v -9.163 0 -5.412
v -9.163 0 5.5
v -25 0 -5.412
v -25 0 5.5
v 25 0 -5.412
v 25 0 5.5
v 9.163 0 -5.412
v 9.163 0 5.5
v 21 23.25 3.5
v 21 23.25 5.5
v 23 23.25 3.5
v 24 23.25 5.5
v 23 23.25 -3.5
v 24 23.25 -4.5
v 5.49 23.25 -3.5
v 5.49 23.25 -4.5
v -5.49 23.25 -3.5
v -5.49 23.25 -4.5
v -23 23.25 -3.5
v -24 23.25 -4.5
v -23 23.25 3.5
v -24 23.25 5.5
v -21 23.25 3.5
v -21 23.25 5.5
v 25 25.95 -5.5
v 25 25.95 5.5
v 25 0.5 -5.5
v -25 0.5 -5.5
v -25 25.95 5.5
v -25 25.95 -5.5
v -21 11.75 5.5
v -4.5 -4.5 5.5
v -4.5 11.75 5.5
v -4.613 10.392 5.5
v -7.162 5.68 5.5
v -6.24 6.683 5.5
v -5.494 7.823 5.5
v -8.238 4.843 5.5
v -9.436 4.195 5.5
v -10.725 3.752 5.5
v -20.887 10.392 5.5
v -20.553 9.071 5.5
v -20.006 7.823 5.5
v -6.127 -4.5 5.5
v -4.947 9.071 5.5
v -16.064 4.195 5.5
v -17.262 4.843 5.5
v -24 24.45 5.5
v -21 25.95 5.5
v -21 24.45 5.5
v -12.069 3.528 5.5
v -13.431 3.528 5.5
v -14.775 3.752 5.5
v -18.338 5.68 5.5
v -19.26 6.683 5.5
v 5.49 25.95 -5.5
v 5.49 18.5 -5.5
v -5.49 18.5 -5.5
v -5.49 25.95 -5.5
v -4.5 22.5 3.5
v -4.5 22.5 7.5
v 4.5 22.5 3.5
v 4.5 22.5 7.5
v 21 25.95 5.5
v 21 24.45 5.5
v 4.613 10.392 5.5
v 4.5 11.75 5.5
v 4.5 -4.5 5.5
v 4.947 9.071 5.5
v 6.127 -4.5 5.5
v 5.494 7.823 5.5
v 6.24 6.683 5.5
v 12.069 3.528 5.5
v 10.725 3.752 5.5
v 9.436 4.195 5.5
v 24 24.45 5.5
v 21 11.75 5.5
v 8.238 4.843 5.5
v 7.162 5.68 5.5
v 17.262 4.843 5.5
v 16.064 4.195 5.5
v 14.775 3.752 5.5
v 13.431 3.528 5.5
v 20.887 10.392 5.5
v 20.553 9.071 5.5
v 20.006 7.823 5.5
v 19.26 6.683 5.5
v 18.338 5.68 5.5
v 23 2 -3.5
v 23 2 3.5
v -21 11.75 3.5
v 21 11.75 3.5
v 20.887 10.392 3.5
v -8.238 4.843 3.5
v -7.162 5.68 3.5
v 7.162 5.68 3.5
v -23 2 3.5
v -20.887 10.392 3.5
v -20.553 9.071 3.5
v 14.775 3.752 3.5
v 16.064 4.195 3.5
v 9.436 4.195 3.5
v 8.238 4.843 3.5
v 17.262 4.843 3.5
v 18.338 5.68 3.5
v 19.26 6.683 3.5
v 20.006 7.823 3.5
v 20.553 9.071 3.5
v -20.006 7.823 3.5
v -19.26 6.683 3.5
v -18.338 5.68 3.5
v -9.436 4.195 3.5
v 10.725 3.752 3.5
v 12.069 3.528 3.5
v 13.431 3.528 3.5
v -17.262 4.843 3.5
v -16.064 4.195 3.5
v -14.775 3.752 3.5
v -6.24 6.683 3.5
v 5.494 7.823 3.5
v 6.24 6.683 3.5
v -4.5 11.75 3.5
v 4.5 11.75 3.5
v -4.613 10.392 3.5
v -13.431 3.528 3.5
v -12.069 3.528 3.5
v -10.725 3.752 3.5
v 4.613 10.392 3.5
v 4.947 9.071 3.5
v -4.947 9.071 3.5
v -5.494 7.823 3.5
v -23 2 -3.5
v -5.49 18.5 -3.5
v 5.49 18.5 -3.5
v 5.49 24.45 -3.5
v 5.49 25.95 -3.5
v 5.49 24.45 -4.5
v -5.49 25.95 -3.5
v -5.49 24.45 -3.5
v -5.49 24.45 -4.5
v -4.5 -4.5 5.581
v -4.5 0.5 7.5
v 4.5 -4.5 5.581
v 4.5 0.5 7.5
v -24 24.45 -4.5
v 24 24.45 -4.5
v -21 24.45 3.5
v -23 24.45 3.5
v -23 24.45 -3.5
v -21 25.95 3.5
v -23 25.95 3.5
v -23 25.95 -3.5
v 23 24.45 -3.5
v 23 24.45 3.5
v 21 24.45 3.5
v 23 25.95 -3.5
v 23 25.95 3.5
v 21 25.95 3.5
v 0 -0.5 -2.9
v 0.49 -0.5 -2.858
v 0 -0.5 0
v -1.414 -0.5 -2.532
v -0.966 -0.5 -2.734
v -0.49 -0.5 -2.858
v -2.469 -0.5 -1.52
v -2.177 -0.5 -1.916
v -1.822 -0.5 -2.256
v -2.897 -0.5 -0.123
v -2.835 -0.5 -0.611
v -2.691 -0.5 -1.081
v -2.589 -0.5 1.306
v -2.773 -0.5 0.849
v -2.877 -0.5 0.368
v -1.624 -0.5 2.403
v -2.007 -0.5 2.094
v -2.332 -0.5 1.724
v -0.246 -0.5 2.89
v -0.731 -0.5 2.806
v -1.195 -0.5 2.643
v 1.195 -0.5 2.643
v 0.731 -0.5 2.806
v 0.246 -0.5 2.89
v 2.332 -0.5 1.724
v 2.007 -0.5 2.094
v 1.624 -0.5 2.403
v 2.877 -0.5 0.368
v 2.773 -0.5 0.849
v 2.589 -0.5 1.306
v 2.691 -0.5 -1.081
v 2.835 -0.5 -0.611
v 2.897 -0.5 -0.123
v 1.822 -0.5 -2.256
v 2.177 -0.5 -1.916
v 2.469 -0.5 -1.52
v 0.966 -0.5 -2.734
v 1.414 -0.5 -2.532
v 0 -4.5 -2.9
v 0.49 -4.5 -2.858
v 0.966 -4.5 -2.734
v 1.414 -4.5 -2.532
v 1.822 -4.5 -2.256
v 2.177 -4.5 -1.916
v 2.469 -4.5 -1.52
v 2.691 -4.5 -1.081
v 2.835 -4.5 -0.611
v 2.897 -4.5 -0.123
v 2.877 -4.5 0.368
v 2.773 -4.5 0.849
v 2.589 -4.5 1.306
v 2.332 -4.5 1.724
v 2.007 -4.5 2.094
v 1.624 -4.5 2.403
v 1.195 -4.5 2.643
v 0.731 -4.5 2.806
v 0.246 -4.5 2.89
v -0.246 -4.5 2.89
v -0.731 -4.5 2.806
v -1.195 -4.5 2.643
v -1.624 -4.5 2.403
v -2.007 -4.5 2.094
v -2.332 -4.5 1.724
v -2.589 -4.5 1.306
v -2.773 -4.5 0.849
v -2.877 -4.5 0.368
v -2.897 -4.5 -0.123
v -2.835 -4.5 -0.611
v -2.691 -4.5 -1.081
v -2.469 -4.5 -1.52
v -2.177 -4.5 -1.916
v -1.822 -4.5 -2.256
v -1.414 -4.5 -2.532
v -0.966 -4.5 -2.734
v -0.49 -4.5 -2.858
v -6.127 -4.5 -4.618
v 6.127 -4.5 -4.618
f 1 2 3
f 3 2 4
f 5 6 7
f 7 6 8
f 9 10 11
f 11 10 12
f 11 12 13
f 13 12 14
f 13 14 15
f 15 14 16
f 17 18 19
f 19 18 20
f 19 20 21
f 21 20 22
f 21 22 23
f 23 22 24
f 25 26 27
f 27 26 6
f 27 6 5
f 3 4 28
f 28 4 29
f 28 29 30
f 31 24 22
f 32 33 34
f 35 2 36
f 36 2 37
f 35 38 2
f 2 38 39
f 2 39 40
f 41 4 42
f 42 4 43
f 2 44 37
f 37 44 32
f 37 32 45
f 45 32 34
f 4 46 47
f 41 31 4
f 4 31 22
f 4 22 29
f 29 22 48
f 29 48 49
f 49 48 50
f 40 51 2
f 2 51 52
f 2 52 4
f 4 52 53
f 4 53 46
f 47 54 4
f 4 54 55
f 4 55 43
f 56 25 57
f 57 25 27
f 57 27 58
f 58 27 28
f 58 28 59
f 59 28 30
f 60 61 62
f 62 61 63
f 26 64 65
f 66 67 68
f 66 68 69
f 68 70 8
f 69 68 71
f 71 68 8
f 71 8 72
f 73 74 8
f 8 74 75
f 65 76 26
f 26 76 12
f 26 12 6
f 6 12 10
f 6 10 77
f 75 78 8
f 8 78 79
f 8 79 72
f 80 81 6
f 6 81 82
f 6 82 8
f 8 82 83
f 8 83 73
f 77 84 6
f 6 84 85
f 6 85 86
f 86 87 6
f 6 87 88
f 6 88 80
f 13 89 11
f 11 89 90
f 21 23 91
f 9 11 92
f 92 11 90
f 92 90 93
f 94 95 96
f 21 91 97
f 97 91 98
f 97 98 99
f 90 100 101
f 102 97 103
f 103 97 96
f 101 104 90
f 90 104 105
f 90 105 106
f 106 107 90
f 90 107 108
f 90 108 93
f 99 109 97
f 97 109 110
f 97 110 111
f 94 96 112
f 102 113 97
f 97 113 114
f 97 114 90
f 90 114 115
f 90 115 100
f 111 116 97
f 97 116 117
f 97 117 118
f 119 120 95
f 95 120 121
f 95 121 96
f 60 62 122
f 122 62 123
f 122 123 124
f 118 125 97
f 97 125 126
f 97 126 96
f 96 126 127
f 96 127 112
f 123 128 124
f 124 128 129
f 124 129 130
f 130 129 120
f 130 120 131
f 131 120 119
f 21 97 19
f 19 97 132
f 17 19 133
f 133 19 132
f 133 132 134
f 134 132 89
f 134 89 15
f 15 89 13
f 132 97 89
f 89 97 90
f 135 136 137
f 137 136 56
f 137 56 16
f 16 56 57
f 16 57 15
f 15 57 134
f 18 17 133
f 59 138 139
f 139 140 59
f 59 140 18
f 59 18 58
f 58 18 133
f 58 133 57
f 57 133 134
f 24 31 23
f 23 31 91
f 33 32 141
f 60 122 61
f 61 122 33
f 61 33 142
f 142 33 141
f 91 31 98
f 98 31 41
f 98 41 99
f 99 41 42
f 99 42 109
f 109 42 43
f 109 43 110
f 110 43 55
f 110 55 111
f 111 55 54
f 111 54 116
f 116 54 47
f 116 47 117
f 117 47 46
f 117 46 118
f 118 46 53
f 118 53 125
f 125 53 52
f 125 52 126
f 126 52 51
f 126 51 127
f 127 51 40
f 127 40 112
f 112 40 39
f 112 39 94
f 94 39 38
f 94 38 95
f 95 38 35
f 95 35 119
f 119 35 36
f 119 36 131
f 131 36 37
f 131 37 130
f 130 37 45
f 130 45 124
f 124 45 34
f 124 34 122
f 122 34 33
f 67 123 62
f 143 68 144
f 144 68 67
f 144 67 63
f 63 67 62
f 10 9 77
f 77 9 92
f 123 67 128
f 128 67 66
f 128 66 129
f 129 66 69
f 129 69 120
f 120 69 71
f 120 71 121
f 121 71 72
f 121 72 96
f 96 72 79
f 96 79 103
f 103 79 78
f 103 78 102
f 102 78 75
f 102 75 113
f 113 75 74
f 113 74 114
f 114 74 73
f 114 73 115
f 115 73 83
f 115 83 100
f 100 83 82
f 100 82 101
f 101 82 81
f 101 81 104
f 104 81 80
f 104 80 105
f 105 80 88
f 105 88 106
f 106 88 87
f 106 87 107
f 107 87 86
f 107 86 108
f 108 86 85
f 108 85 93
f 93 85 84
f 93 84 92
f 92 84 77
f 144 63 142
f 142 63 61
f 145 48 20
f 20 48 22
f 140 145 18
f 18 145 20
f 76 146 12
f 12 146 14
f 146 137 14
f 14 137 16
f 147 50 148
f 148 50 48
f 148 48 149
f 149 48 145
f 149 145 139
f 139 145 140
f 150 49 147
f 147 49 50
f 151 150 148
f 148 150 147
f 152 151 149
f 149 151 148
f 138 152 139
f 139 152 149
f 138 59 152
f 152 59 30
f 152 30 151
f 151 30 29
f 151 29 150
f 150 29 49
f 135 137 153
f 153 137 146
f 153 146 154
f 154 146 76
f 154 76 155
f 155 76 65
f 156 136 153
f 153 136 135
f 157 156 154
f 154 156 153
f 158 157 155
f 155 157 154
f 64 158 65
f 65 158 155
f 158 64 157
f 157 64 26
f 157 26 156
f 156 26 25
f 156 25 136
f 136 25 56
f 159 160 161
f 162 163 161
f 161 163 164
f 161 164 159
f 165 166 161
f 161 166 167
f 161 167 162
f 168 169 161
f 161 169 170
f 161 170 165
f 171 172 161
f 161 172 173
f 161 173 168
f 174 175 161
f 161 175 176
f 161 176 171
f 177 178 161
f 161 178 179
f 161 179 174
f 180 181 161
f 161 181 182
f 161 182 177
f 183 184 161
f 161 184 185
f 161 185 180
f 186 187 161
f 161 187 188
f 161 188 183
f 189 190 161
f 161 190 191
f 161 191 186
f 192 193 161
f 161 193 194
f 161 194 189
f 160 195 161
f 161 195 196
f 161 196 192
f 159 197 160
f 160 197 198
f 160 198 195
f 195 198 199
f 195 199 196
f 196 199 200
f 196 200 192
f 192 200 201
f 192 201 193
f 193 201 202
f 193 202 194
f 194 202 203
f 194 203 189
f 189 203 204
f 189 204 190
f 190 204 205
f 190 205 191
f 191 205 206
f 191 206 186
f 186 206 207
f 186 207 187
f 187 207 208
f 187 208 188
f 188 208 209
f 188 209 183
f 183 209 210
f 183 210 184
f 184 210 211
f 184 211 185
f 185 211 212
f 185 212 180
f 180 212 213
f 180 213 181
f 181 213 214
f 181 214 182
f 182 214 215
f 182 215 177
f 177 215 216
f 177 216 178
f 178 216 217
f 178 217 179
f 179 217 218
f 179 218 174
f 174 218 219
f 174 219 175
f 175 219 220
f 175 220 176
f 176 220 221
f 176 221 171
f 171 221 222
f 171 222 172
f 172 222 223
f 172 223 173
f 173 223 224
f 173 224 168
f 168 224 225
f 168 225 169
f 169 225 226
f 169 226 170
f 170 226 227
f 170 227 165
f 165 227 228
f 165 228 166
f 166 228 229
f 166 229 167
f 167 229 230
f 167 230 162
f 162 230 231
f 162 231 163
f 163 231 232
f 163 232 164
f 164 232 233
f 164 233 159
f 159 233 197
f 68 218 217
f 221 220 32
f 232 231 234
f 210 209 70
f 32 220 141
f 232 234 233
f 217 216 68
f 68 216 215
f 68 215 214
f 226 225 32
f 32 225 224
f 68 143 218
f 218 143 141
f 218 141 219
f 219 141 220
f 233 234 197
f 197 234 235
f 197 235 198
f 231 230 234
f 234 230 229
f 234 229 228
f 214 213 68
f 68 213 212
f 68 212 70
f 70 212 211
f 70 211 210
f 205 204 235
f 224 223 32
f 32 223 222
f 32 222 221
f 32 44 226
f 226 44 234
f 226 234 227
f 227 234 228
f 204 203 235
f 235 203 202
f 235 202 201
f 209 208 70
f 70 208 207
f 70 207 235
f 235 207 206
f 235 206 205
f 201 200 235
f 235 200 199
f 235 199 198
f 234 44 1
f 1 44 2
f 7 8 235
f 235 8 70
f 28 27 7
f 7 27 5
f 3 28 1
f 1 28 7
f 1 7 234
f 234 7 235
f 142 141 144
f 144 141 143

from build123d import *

# Parameters (mm, degrees)
ESBO_O1_W                 = 50
ESBO_O1_H                 = 11
RESSALTO_EXTRUS_O1_DEPTH  = 22.5
ESBO_O2_W                 = 46
ESBO_O2_H                 = 7
CORTE_EXTRUS_O1_DEPTH     = 20.5
ESBO_O3_W                 = 10.97916057
ESBO_O3_H                 = 2
CORTE_EXTRUS_O2_DEPTH     = 4
CORTE_EXTRUS_O3_DEPTH     = 4
ESBO_O9_W                 = 50
ESBO_O9_H                 = 4
RESSALTO_EXTRUS_O4_DEPTH  = 7
ESBO_O13_R                = 1.5
CORTE_EXTRUS_O4_DEPTH     = 7
ESBO_O19_W                = 9
ESBO_O19_H                = 4
RESSALTO_EXTRUS_O5_DEPTH  = 22.5
ESBO_O20_W                = 50
ESBO_O20_H                = 4
CORTE_EXTRUS_O5_DEPTH     = 7
RESSALTO_EXTRUS_O6_DEPTH  = 0.75
RESSALTO_EXTRUS_O7_DEPTH  = 1.2
RESSALTO_EXTRUS_O8_DEPTH  = 1.5
RESSALTO_EXTRUS_O9_DEPTH  = 4.5
ESBO_O26_R                = 2.9
CORTE_EXTRUS_O6_DEPTH     = 4
ESBO_O28_W                = 7
ESBO_O28_H                = 7
RESSALTO_EXTRUS_O10_DEPTH = 4.5
CHANFRO1_SIZE             = 5
CHANFRO1_SIZE_2           = 3.372542584
CHANFRO2_SIZE             = 3.372542584
CHANFRO2_SIZE_2           = 5
CHANFRO3_SIZE             = 5
CHANFRO3_SIZE2            = 0.881634904
CHANFRO4_SIZE             = 5
CHANFRO4_SIZE2            = 1.919320175


with BuildPart() as part:
    # Esboço1 → Ressalto-extrusão1 (new body)
    with BuildSketch(Plane(origin=(0, 0, 0), x_dir=(1, 0, 0), z_dir=(0, 1, 0))):
        Rectangle(ESBO_O1_W, ESBO_O1_H)
    extrude(amount=RESSALTO_EXTRUS_O1_DEPTH)

    # Esboço2 → Corte-extrusão1 (cut)
    with BuildSketch(Plane(origin=(0, 22.5, 0), x_dir=(1, 0, 0), z_dir=(0, 1, 0))):
        Rectangle(ESBO_O2_W, ESBO_O2_H)
    extrude(amount=-CORTE_EXTRUS_O1_DEPTH, mode=Mode.SUBTRACT)

    # Esboço3 → Corte-extrusão2 (cut)
    with BuildSketch(Plane(origin=(0, 22.5, 0), x_dir=(1, 0, 0), z_dir=(0, 1, 0))):
        with Locations((0, 4.5)):
            Rectangle(ESBO_O3_W, ESBO_O3_H)
    extrude(amount=-CORTE_EXTRUS_O2_DEPTH, mode=Mode.SUBTRACT)

    # Esboço5 → Corte-extrusão3 (cut)
    with BuildSketch(Plane.XY.offset(5.5)):
        with BuildLine():
            Line((-21, 22.5), (-4.5, 22.5))
            Line((-4.5, 22.5), (-4.5, 11.75))
            ThreePointArc((-4.5, 11.75), (-12.75, 3.5), (-21, 11.75))
            Line((-21, 11.75), (-21, 22.5))
        make_face()
        with BuildLine():
            Line((4.5, 22.5), (21, 22.5))
            Line((21, 22.5), (21, 11.75))
            ThreePointArc((21, 11.75), (12.75, 3.5), (4.5, 11.75))
            Line((4.5, 11.75), (4.5, 22.5))
        make_face()
    extrude(amount=-CORTE_EXTRUS_O3_DEPTH, mode=Mode.SUBTRACT)

    # Esboço9 → Ressalto-extrusão4 (add)
    with BuildSketch(Plane(origin=(0, 0, -5.5), x_dir=(-1, 0, 0), z_dir=(0, 0, -1))):
        with Locations((0, 2)):
            Rectangle(ESBO_O9_W, ESBO_O9_H)
    extrude(amount=RESSALTO_EXTRUS_O4_DEPTH)

    # Esboço13 → Corte-extrusão4 (cut)
    with BuildSketch(Plane(origin=(0, 4, 0), x_dir=(1, 0, 0), z_dir=(0, 1, 0))):
        with Locations(Location((10, 9, 0), (0, 0, 270))):
            Circle(ESBO_O13_R)
        with Locations(Location((5, 9, 0), (0, 0, 270))):
            Circle(ESBO_O13_R)
        with Locations(Location((20, 9, 0), (0, 0, 270))):
            Circle(ESBO_O13_R)
        with Locations(Location((15, 9, 0), (0, 0, 270))):
            Circle(ESBO_O13_R)
        with Locations(Location((0, 9, 0), (0, 0, 270))):
            Circle(ESBO_O13_R)
        with Locations(Location((-5, 9, 0), (0, 0, 270))):
            Circle(ESBO_O13_R)
        with Locations(Location((-10, 9, 0), (0, 0, 270))):
            Circle(ESBO_O13_R)
        with Locations(Location((-15, 9, 0), (0, 0, 270))):
            Circle(ESBO_O13_R)
        with Locations(Location((-20, 9, 0), (0, 0, 270))):
            Circle(ESBO_O13_R)
    extrude(amount=-CORTE_EXTRUS_O4_DEPTH, mode=Mode.SUBTRACT)

    # Esboço19 → Ressalto-extrusão5 (add)
    with BuildSketch(Plane(origin=(0, 22.5, 0), x_dir=(1, 0, 0), z_dir=(0, 1, 0))):
        with Locations((0, -5.5)):
            Rectangle(ESBO_O19_W, ESBO_O19_H)
    extrude(amount=-RESSALTO_EXTRUS_O5_DEPTH)

    # Esboço20 → Corte-extrusão5 (cut)
    with BuildSketch(Plane(origin=(0, 0, -12.5), x_dir=(-1, 0, 0), z_dir=(0, 0, -1))):
        with Locations((0, 2)):
            Rectangle(ESBO_O20_W, ESBO_O20_H)
    extrude(amount=-CORTE_EXTRUS_O5_DEPTH, mode=Mode.SUBTRACT)

    # Esboço21 → Ressalto-extrusão6 (add)
    with BuildSketch(Plane(origin=(0, 22.5, 0), x_dir=(1, 0, 0), z_dir=(0, 1, 0))):
        Polygon((-21, -5.5), (-21, -3.5), (-23, -3.5), (-23, 3.5), (-5.489580285, 3.5), (-5.489580285, 5.5), (-25, 5.5), (-25, -5.5), align=None)
        Polygon((21, -3.5), (21, -5.5), (25, -5.5), (25, 5.5), (5.489580285, 5.5), (5.489580285, 3.5), (23, 3.5), (23, -3.5), align=None)
    extrude(amount=RESSALTO_EXTRUS_O6_DEPTH)

    # Esboço22 → Ressalto-extrusão7 (add)
    with BuildSketch(Plane(origin=(0, 23.25, 0), x_dir=(1, 0, 0), z_dir=(0, 1, 0))):
        Polygon((-24, 3.5), (-24, -5.5), (-25, -5.5), (-25, 5.5), (-5.489580285, 5.5), (-5.489580285, 4.5), (-23, 4.5), (-24, 4.5), align=None)
        Polygon((23, 4.5), (5.489580285, 4.5), (5.489580285, 5.5), (25, 5.5), (25, -5.5), (24, -5.5), (24, 3.5), (24, 4.5), align=None)
    extrude(amount=RESSALTO_EXTRUS_O7_DEPTH)

    # Esboço23 → Ressalto-extrusão8 (add)
    with BuildSketch(Plane(origin=(0, 24.45, 0), x_dir=(1, 0, 0), z_dir=(0, 1, 0))):
        Polygon((-24, 4.5), (-24, -5.5), (-25, -5.5), (-25, 5.5), (-5.489580285, 5.5), (-5.489580285, 4.5), align=None)
        Polygon((-23, 3.5), (-5.489580285, 3.5), (-5.489580285, 4.5), (-24, 4.5), (-24, -5.5), (-21, -5.5), (-21, -3.5), (-23, -3.5), align=None)
        Polygon((5.489580285, 5.5), (5.489580285, 4.5), (24, 4.5), (24, -5.5), (25, -5.5), (25, 5.5), align=None)
        Polygon((23, -3.5), (21, -3.5), (21, -5.5), (24, -5.5), (24, 4.5), (5.489580285, 4.5), (5.489580285, 3.5), (23, 3.5), align=None)
    extrude(amount=RESSALTO_EXTRUS_O8_DEPTH)

    # Esboço24 → Ressalto-extrusão9 (add)
    with BuildSketch(Plane.XZ):
        Polygon((0, 3.5), (-3.5, 3.5), (-3.5, 0), (-3.5, -3.5), (3.5, -3.5), (3.5, 3.5), align=None)
    extrude(amount=RESSALTO_EXTRUS_O9_DEPTH)

    # Esboço26 → Corte-extrusão6 (cut)
    with BuildSketch(Plane.XZ.offset(4.5)):
        with Locations(Location((0, 0, 0), (0, 0, 270))):
            Circle(ESBO_O26_R)
    extrude(amount=-CORTE_EXTRUS_O6_DEPTH, mode=Mode.SUBTRACT)

    # Esboço28 → Ressalto-extrusão10 (add)
    with BuildSketch(Plane.XZ):
        Polygon((-4.5, 5.5), (-9.5, 5.5), (-9.5, -5.5), (9.5, -5.5), (9.5, 5.5), (4.5, 5.5), (4.5, 7.5), (-4.5, 7.5), align=None)
        Rectangle(ESBO_O28_W, ESBO_O28_H, mode=Mode.SUBTRACT)
    extrude(amount=RESSALTO_EXTRUS_O10_DEPTH)

    # Chanfro1
    # the kernel refuses this chamfer: 5, 3.372542584 mm, written as the material it adds along each edge
    # the kernel refuses this chamfer: 5, 3.372542584 mm, written as the material it takes off along each edge
    with BuildSketch(Plane(origin=(-9.5, -4.5, 18.417545032), x_dir=(-0.021644705014774095, 0.9997657259302418, 0), z_dir=(0, 0, -1))) as chanfro1_2_piece_1_section:
        Polygon((CHANFRO1_SIZE * 0.99976572593, CHANFRO1_SIZE * 0.0216447050148), (-CHANFRO1_SIZE_2 * 0.0216447050161, CHANFRO1_SIZE_2 * 0.999765725993), (0, 0), align=None)
    chanfro1_2_piece_1 = extrude(amount=36.835090064, mode=Mode.PRIVATE)
    chanfro1_2_piece_1 = split(chanfro1_2_piece_1, bisect_by=Plane(origin=(-8.365599313, 0, 0), z_dir=(0, -1, 0)), keep=Keep.TOP, mode=Mode.PRIVATE)
    add(chanfro1_2_piece_1, mode=Mode.SUBTRACT)

    # Chanfro2
    # the kernel refuses this chamfer: 5, 3.372542584 mm, written as the material it takes off along each edge
    with BuildSketch(Plane(origin=(9.5, -4.5, -18.417545032), x_dir=(-0.9988697089125116, -0.04753214298802805, 0), z_dir=(0, 0, 1))) as chanfro2_piece_1_section:
        Polygon((CHANFRO2_SIZE * 0.998869708975, -CHANFRO2_SIZE * 0.047532142991), (-CHANFRO2_SIZE_2 * 0.047532142988, -CHANFRO2_SIZE_2 * 0.998869708913), (0, 0), align=None)
    chanfro2_piece_1 = extrude(amount=36.835090064, mode=Mode.PRIVATE)
    chanfro2_piece_1 = split(chanfro2_piece_1, bisect_by=Plane(origin=(8.383687283, 0, 0), z_dir=(0, -1, 0)), keep=Keep.TOP, mode=Mode.PRIVATE)
    add(chanfro2_piece_1, mode=Mode.SUBTRACT)

    # Chanfro3
    chanfro3_edges = [part.edges().sort_by_distance(p)[0] for p in [
        (0, -4.5, -5.5),
    ]]
    chanfro3_side = [part.faces().sort_by_distance(p)[0] for p in [
        (0, 11.578416309, -5.5),
    ]]
    chamfer(chanfro3_edges, length=CHANFRO3_SIZE, length2=CHANFRO3_SIZE2, reference=chanfro3_side[0])

    # Chanfro4
    chanfro4_edges = [part.edges().sort_by_distance(p)[0] for p in [
        (0, -4.5, 7.5),
    ]]
    chanfro4_side = [part.faces().sort_by_distance(p)[0] for p in [
        (0, 9, 7.5),
    ]]
    chamfer(chanfro4_edges, length=CHANFRO4_SIZE, length2=CHANFRO4_SIZE2, reference=chanfro4_side[0])


solid = part.part
